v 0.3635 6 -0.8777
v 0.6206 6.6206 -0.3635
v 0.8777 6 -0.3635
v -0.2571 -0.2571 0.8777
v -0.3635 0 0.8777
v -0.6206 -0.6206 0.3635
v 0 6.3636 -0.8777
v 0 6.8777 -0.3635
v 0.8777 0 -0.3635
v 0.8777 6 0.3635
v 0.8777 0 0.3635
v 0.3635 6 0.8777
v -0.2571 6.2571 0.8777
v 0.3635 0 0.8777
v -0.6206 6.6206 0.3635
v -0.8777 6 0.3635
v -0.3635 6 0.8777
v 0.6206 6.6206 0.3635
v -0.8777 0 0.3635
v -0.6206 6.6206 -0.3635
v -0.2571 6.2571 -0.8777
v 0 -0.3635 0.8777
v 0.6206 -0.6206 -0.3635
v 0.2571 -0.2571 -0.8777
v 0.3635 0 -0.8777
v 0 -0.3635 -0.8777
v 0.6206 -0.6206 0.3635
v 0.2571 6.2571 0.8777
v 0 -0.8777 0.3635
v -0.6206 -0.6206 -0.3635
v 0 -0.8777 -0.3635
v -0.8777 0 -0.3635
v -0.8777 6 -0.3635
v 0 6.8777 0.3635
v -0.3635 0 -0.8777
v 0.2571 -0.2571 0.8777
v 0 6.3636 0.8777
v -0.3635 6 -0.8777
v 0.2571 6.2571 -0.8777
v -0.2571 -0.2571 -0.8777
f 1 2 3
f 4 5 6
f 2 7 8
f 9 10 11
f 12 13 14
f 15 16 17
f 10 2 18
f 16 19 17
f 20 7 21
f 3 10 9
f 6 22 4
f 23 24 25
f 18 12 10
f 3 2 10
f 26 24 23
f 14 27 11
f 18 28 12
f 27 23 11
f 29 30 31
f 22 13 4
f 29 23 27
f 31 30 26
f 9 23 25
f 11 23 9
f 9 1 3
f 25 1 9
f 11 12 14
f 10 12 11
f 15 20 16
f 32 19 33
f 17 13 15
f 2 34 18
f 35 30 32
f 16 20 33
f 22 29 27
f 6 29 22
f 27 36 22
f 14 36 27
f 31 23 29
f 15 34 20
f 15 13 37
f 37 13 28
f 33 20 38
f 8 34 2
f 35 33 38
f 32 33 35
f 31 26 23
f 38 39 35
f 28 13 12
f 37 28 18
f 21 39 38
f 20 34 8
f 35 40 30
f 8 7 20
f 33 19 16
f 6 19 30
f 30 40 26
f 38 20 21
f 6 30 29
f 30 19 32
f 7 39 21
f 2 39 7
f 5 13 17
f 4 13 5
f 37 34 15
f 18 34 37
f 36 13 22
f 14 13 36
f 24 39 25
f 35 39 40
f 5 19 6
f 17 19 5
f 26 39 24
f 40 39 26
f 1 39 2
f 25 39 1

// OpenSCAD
module rod(a, b, r) {
        hull() {
            translate(a) sphere(r,$fn=8);
            translate(b) sphere(r,$fn=8);
        }
    }

rod([0,0,0],[0,6,0],0.95);
